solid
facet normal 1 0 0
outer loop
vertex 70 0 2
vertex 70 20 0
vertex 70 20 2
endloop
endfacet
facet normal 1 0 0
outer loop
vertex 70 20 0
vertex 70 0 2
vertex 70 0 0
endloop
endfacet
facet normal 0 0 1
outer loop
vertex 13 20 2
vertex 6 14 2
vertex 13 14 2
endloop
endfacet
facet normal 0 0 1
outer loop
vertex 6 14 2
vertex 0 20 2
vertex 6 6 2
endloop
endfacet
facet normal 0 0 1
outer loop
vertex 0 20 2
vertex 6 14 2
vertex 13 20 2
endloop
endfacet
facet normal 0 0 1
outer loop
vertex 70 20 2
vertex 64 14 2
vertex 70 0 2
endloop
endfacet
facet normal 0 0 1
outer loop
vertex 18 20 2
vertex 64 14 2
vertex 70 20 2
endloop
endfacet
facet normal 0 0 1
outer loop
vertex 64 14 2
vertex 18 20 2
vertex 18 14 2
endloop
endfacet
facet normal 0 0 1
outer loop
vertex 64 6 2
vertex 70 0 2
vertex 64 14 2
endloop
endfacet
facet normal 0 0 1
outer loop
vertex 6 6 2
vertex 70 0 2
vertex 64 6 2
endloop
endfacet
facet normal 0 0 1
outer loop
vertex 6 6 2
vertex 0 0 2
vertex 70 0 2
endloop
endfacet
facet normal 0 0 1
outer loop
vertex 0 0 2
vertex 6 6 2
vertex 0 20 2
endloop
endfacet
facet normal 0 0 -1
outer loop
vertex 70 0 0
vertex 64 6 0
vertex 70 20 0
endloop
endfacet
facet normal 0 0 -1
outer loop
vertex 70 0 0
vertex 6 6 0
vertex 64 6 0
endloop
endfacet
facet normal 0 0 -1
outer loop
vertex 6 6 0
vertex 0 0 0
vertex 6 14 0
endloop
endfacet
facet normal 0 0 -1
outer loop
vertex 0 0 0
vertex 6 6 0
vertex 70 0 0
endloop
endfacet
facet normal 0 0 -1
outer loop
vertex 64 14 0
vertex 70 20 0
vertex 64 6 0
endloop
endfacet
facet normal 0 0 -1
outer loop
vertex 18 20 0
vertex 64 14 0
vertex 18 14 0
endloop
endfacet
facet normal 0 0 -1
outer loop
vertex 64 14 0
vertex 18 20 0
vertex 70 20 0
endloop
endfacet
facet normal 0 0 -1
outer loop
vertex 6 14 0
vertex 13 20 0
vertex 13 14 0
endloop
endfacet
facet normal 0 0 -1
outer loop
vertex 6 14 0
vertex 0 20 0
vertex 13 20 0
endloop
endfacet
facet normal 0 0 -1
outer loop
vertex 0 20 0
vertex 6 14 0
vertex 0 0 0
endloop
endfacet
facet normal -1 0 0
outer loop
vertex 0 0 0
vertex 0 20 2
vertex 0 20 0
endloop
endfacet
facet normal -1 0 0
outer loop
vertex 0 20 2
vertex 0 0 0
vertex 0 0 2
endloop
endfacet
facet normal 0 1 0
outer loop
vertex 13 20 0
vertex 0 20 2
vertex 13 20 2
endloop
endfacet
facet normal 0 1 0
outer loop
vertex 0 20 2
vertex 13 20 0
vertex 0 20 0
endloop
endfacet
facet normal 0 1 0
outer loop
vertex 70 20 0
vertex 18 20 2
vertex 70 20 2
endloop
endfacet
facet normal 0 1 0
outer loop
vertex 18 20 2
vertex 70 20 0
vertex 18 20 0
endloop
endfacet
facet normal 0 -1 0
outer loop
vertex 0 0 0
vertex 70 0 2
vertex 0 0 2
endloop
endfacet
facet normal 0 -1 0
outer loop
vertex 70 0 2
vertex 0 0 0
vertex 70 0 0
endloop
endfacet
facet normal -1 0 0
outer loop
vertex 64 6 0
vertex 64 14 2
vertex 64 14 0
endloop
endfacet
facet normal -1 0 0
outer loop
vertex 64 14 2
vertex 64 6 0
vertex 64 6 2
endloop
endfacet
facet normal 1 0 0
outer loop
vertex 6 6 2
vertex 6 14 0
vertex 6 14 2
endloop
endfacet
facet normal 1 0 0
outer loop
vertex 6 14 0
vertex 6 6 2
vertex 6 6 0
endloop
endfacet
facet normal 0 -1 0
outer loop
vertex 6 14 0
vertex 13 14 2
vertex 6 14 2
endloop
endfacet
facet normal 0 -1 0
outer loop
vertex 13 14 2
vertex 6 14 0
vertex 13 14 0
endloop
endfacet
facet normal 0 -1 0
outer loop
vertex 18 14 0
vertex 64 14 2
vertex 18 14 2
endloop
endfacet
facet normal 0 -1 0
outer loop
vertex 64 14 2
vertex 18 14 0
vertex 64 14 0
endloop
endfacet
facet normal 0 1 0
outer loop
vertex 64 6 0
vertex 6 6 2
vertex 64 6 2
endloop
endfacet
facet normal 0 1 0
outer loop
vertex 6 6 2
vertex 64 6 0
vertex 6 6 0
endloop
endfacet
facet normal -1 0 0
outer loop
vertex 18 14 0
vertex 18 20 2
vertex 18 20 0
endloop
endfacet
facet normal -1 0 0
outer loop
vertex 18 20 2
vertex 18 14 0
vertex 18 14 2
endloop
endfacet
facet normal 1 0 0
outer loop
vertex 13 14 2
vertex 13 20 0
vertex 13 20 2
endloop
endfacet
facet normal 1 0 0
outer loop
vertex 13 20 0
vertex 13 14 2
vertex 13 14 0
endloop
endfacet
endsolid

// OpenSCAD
width=70;
depth=20;
height=2.0;

cutout_width=58;
cutout_depth=8;

difference()
{
  cube( [width, depth, height] ); 
  
  // Knock out middle strip for the LEDs
  //
  translate( [(width-cutout_width)/2, (depth-cutout_depth)/2, 0] )
  {
    cube( [cutout_width, cutout_depth, height] );
  }

  // Knock out gap for the header connector. Caliper measurements.
  //
  translate( [13, ((depth-cutout_depth)/2)+cutout_depth, 0] )
  {
    cube( [5, 8, height] );
  }
  
}
